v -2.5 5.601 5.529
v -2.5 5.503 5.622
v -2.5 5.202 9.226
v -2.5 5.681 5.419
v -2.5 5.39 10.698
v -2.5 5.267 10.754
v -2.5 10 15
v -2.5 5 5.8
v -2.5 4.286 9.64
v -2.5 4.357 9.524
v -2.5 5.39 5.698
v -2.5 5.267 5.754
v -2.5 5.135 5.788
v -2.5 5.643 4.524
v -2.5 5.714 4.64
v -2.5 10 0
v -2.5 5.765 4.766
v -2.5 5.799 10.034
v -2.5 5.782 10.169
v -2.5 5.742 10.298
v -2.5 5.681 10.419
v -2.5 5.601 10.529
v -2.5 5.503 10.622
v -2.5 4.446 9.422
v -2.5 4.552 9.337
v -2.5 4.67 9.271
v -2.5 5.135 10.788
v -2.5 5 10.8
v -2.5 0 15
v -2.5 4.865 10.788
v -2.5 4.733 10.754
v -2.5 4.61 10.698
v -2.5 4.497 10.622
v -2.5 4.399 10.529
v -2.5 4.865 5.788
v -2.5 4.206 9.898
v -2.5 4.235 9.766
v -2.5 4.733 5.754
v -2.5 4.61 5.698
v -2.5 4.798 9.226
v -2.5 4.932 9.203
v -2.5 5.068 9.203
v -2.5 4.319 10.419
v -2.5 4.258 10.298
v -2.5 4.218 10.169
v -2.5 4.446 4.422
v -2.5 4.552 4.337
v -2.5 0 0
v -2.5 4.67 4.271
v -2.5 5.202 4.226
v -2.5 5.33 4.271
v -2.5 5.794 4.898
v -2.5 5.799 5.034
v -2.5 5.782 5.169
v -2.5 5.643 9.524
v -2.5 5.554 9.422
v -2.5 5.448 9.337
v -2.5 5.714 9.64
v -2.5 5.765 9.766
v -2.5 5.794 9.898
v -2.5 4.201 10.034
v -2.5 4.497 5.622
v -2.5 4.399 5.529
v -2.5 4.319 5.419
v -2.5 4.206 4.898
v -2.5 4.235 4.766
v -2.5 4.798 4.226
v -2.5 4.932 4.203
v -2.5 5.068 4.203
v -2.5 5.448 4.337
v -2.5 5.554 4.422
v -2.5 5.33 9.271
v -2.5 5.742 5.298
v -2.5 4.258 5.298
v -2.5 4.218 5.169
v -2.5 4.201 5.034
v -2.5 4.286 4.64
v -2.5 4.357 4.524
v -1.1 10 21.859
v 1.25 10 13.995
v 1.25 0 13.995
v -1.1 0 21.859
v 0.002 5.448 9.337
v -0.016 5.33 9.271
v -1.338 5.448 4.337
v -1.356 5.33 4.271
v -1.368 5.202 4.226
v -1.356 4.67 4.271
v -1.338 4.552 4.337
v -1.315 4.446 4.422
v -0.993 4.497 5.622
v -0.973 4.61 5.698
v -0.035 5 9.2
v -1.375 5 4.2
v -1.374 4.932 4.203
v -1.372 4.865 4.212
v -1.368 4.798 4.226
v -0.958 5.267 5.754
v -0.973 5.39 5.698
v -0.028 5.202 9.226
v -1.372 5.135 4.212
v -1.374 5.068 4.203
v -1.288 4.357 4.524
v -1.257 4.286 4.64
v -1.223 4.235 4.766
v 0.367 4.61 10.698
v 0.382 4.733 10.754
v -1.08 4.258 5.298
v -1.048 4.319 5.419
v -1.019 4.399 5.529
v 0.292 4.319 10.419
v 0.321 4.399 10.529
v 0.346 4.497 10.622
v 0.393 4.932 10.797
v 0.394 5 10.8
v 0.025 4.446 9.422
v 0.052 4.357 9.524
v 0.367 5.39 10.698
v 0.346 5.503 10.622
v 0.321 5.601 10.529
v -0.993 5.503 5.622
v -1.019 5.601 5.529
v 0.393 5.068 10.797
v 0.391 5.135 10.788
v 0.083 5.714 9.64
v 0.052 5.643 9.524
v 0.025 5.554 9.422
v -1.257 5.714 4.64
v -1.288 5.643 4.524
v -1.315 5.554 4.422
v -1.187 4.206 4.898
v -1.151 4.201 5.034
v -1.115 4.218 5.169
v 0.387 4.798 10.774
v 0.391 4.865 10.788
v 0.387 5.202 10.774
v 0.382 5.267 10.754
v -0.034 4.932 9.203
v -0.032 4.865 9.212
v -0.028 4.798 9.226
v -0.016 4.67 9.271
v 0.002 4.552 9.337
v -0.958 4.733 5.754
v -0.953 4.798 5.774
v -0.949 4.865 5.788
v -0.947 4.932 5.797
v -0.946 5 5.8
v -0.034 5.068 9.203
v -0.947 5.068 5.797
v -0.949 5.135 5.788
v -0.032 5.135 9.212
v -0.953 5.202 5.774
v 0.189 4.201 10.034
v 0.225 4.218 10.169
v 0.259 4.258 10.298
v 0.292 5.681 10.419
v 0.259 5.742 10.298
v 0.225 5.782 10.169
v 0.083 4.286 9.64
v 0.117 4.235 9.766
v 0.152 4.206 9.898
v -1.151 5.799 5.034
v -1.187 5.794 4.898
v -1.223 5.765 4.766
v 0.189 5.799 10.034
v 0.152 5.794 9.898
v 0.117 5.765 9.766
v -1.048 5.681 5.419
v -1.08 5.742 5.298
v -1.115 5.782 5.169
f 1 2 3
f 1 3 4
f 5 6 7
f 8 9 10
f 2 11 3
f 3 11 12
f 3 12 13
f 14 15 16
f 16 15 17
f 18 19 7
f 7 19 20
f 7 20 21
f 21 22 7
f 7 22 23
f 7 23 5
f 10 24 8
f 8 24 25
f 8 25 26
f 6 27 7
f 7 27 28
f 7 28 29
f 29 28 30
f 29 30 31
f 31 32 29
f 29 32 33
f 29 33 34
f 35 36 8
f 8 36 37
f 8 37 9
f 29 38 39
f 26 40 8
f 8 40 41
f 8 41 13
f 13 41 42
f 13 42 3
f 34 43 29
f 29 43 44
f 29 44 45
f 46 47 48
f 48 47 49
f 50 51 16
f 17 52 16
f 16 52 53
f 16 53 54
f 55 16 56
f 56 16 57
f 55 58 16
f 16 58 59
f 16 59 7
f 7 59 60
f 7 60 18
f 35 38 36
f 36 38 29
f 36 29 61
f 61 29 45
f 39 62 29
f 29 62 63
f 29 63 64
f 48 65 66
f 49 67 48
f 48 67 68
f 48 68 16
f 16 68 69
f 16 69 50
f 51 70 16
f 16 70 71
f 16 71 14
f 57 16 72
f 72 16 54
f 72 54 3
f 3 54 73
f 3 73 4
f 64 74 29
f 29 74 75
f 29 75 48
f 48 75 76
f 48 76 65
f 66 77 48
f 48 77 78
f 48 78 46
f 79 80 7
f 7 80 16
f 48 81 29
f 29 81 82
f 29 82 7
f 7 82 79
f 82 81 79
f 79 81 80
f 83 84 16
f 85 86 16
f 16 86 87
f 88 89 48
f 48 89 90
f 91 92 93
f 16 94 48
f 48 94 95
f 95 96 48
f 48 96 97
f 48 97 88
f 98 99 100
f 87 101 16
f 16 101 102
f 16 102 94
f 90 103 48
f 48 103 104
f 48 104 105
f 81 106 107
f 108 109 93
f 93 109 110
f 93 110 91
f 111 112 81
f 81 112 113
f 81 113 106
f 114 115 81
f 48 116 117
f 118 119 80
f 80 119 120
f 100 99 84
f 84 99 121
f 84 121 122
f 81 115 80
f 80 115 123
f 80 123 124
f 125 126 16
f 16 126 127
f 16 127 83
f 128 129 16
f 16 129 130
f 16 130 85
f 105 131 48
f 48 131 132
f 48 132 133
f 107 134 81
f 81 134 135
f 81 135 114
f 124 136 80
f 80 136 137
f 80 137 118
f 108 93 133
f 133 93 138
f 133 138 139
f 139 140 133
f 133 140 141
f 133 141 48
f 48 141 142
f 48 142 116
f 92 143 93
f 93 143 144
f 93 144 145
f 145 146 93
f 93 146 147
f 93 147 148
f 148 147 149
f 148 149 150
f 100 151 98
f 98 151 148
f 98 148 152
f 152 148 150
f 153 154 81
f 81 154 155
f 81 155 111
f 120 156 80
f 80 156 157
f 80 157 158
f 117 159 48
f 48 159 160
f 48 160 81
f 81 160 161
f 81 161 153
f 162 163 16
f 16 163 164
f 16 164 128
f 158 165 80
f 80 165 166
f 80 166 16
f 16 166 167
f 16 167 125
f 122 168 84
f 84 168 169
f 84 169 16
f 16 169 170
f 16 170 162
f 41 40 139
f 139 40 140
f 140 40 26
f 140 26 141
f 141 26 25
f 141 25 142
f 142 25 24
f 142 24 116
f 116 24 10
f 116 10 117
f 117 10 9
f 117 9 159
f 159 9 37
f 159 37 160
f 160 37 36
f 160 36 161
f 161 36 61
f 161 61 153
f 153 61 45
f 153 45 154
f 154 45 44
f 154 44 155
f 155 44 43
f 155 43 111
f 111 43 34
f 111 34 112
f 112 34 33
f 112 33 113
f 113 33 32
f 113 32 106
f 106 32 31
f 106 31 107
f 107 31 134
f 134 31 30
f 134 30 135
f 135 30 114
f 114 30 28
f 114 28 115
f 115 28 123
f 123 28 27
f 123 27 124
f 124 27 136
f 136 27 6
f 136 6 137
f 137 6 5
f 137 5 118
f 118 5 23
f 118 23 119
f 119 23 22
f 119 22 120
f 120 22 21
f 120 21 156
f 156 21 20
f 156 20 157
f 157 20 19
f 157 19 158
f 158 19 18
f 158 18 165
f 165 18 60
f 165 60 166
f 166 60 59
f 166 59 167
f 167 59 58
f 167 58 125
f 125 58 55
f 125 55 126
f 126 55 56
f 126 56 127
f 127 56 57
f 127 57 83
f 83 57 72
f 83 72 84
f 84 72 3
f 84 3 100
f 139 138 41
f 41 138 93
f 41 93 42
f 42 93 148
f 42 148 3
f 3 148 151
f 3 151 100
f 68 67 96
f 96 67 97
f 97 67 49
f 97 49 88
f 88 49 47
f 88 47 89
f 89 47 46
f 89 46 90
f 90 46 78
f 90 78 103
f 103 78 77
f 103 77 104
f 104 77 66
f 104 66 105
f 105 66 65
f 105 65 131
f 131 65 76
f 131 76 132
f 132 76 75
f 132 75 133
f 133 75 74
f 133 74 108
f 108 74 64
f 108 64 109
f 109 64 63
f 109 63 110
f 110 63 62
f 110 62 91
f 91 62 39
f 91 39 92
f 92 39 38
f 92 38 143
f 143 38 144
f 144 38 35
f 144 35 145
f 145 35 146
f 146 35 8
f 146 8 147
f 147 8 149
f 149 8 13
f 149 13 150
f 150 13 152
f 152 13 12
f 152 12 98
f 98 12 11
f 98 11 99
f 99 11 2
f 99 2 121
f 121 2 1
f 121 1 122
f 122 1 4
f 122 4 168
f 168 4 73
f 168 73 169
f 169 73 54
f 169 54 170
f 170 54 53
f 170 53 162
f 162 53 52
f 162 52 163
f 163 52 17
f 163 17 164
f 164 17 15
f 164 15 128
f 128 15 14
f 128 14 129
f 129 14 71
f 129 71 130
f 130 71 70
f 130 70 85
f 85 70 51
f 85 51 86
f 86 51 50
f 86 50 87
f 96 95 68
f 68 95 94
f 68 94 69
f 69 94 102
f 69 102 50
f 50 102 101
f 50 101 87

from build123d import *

# Parameters (mm, degrees)
SKETCH_2_W          = 5
SKETCH_2_H          = 32
EXTRUDE_1_DEPTH     = 10
CUT_EXTRUDE_1_DEPTH = 34.619190948
SKETCH_4_R          = 0.8
CUT_EXTRUDE_2_DEPTH = 25.328165537


with BuildPart() as part:
    # 草图2 → 凸台-拉伸1 (new body)
    with BuildSketch(Plane(origin=(0, 0, 0), x_dir=(1, 0, 0), z_dir=(0, 1, 0))):
        with Locations((0, -16)):
            Rectangle(SKETCH_2_W, SKETCH_2_H)
    extrude(amount=EXTRUDE_1_DEPTH)

    # 草图3 → 切除-拉伸1 (cut, through all)
    with BuildSketch(Plane(origin=(0, 10, 0), x_dir=(1, 0, 0), z_dir=(0, 1, 0))):
        Polygon((2.5, -18.660254038), (1.25, -13.995190528), (-1.1, -21.85857128), (-2.5, -15), (-2.5, -32), (2.5, -32), align=None)
        Polygon((2.5, 0), (-2.5, 0), (1.25, -13.995190528), (2.5, -18.660254038), align=None)
    extrude(amount=-CUT_EXTRUDE_1_DEPTH, mode=Mode.SUBTRACT)

    # 草图4 → 切除-拉伸2 (cut, through all)
    with BuildSketch(Plane.ZY.offset(2.5)):
        with Locations((5, 5)):
            Circle(SKETCH_4_R)
        with Locations((10, 5)):
            Circle(SKETCH_4_R)
    extrude(amount=-CUT_EXTRUDE_2_DEPTH, mode=Mode.SUBTRACT)


solid = part.part
